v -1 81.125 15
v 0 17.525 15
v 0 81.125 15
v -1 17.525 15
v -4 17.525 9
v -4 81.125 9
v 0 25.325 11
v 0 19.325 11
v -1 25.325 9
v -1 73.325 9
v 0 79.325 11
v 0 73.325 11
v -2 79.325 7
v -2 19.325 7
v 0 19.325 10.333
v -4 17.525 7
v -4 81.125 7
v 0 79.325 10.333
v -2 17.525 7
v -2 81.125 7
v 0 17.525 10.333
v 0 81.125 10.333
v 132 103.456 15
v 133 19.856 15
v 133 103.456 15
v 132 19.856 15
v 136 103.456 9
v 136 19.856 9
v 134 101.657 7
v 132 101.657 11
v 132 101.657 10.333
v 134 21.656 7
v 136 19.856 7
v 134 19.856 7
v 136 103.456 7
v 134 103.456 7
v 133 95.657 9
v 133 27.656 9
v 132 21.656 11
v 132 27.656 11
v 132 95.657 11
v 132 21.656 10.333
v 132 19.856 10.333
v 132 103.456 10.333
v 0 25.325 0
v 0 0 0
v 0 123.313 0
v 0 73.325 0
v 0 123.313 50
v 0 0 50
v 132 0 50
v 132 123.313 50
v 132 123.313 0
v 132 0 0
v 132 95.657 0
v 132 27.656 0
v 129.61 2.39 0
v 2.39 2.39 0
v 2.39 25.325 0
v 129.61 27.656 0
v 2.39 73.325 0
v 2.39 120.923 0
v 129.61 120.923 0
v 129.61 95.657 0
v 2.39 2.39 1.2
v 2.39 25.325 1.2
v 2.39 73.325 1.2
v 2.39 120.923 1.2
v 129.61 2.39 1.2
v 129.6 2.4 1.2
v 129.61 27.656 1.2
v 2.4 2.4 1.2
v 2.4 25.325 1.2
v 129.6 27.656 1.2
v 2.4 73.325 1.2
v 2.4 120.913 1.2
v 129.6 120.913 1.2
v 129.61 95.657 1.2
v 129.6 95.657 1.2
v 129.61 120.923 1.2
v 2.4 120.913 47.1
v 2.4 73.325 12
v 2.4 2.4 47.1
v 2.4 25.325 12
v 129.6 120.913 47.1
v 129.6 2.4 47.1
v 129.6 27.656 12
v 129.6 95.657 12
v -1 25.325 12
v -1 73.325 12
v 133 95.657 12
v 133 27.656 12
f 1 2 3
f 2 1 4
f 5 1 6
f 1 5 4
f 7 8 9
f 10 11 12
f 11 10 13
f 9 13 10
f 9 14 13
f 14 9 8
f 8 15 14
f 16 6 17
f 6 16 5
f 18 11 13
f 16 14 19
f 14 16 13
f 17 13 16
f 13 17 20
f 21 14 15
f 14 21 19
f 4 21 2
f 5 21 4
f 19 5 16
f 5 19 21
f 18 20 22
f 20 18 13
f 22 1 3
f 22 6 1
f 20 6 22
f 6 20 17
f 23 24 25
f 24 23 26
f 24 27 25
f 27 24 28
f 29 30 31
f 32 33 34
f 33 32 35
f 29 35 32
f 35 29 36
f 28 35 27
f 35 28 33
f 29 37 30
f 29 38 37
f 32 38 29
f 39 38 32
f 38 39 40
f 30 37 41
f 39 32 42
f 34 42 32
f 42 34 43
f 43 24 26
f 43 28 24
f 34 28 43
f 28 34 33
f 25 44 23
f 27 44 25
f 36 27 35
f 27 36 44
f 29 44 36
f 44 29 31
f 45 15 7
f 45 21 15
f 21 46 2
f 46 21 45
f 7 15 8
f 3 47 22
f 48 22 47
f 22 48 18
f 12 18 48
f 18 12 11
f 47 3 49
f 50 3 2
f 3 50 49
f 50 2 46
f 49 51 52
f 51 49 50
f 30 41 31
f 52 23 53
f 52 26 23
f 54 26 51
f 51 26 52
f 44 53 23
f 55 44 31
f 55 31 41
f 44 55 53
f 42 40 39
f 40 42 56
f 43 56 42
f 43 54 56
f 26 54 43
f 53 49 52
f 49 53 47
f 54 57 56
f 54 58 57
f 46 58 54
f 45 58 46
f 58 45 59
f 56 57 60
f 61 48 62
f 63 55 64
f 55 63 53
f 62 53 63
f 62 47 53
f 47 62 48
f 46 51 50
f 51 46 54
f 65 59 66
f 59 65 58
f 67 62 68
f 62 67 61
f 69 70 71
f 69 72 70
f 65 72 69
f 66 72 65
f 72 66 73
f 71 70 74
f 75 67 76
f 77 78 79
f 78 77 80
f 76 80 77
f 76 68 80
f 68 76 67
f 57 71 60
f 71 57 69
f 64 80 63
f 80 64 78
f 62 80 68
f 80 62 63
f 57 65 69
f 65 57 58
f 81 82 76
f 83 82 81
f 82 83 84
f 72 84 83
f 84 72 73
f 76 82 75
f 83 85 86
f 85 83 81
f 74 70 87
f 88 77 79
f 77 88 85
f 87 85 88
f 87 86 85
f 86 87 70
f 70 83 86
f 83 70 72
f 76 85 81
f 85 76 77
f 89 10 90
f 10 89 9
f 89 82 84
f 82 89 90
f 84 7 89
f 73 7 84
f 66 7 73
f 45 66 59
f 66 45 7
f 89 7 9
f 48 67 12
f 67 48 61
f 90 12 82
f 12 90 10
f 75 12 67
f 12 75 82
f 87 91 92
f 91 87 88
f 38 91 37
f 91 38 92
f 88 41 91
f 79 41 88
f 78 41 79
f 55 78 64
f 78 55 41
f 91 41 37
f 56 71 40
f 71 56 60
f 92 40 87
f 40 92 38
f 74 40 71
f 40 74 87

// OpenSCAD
// OpenSCAD 2021.01 compatible
// Protective cover for esp32_breakout_carrier_with_lugs_v6_right_corner_lugs.scad
//
// Features:
// - open-bottom cover that fits over the ESP32 carrier rim
// - cover outer footprint matches the carrier's 3 mm cover-rest shelf
// - two centered cable openings/roofs on the same sides as the lugs
//   * left / -X lug side: 40 mm roof
//   * right / +X lug side: 80 mm roof
// - rain roofs with side cheeks, following the relay/pump cover style

$fn = 64;

// -----------------------------
// Matching ESP32 carrier v6 dimensions
// -----------------------------
carrier_body_width  = 126.0;
carrier_body_depth  = 117.313;  // 80 mm board + one 27.313 mm lug pitch + 2*5 mm margin
cover_rest_width    = 3.0;      // shelf available around the carrier rim

// -----------------------------
// Cover fit and height
// -----------------------------
fit_clearance   = 0.6;   // side clearance around the carrier rim
wall_thickness  = 2.4;   // with clearance, outside lands on the 3 mm shelf
inside_height   = 47.0;  // underside of top above carrier/rim
top_thickness   = 3.0;

// Derived cover dimensions
inner_width  = carrier_body_width  + 2 * fit_clearance;
inner_depth  = carrier_body_depth  + 2 * fit_clearance;
outer_width  = inner_width  + 2 * wall_thickness;
outer_depth  = inner_depth  + 2 * wall_thickness;
outer_height = inside_height + top_thickness;

// -----------------------------
// Cable openings and rain roofs on lug sides
// -----------------------------
left_roof_width  = 60.0;  // requested 4 cm roof, centered on -X lug side
right_roof_width = 80.0;  // requested 8 cm roof, centered on +X lug side

slot_top_z        = 12.0;  // openings are open from z=0 to this height
roof_clearance    = 1.0;
roof_projection   = 3.0;
roof_drop         = 6.0;
roof_thickness    = 2.0;
roof_side_margin  = 6.0;   // slot is smaller than roof, roof width stays exact
roof_cheek_thick  = 1.8;

left_slot_width  = left_roof_width  - 2 * roof_side_margin;
right_slot_width = right_roof_width - 2 * roof_side_margin;

left_center_y  = outer_depth / 2.5;
right_center_y = outer_depth / 2;

left_roof_y0  = left_center_y  - left_roof_width / 2;
left_roof_y1  = left_center_y  + left_roof_width / 2;
right_roof_y0 = right_center_y - right_roof_width / 2;
right_roof_y1 = right_center_y + right_roof_width / 2;

left_slot_y0  = left_center_y  - left_slot_width / 2;
right_slot_y0 = right_center_y - right_slot_width / 2;

roof_back_z  = slot_top_z + roof_clearance;
roof_front_z = roof_back_z - roof_drop;

// Optional small inner chamfer near bottom so the cover starts easily over the rim
bottom_chamfer_h  = 1.2;
bottom_chamfer_in = 0.7;

// -----------------------------
// Core shell
// -----------------------------
module outer_shell() {
    cube([outer_width, outer_depth, outer_height]);
}

module inner_cavity() {
    translate([wall_thickness, wall_thickness, 0])
        cube([inner_width, inner_depth, inside_height + 0.1]);
}

module bottom_softening_cut() {
    if (bottom_chamfer_h > 0 && bottom_chamfer_in > 0) {
        translate([wall_thickness - 0.01, wall_thickness - 0.01, 0])
            difference() {
                cube([inner_width + 0.02, inner_depth + 0.02, bottom_chamfer_h]);
                translate([bottom_chamfer_in, bottom_chamfer_in, -0.01])
                    cube([
                        inner_width - 2 * bottom_chamfer_in + 0.02,
                        inner_depth - 2 * bottom_chamfer_in + 0.02,
                        bottom_chamfer_h + 0.02
                    ]);
            }
    }
}

// -----------------------------
// Slot cutouts on the lug-side walls
// -----------------------------
module cable_slot_cutout_left(y0, width, top_z) {
    translate([-1, y0, 0])
        cube([wall_thickness + 2, width, top_z]);
}

module cable_slot_cutout_right(y0, width, top_z) {
    translate([outer_width - wall_thickness - 1, y0, 0])
        cube([wall_thickness + 2, width, top_z]);
}

// -----------------------------
// Left roof: x=0 side, sloping outward toward -X
// -----------------------------
module rain_roof_left(y0, width) {
    hull() {
        translate([-roof_thickness / 2, y0, roof_back_z])
            cube([roof_thickness, width, roof_thickness]);
        translate([-roof_projection - roof_thickness / 2, y0, roof_front_z])
            cube([roof_thickness, width, roof_thickness]);
    }
}

module rain_cheek_left_bottom(y0) {
    hull() {
        translate([-roof_thickness / 2, y0 - roof_cheek_thick, slot_top_z])
            cube([roof_thickness, roof_cheek_thick, roof_back_z + roof_thickness - slot_top_z]);
        translate([-roof_projection - roof_thickness / 2, y0 - roof_cheek_thick, roof_front_z])
            cube([roof_thickness, roof_cheek_thick, roof_thickness]);
    }
}

module rain_cheek_left_top(y1) {
    hull() {
        translate([-roof_thickness / 2, y1, slot_top_z])
            cube([roof_thickness, roof_cheek_thick, roof_back_z + roof_thickness - slot_top_z]);
        translate([-roof_projection - roof_thickness / 2, y1, roof_front_z])
            cube([roof_thickness, roof_cheek_thick, roof_thickness]);
    }
}

// -----------------------------
// Right roof: x=outer_width side, sloping outward toward +X
// -----------------------------
module rain_roof_right(y0, width) {
    hull() {
        translate([outer_width - roof_thickness / 2, y0, roof_back_z])
            cube([roof_thickness, width, roof_thickness]);
        translate([outer_width + roof_projection - roof_thickness / 2, y0, roof_front_z])
            cube([roof_thickness, width, roof_thickness]);
    }
}

module rain_cheek_right_bottom(y0) {
    hull() {
        translate([outer_width - roof_thickness / 2, y0 - roof_cheek_thick, slot_top_z])
            cube([roof_thickness, roof_cheek_thick, roof_back_z + roof_thickness - slot_top_z]);
        translate([outer_width + roof_projection - roof_thickness / 2, y0 - roof_cheek_thick, roof_front_z])
            cube([roof_thickness, roof_cheek_thick, roof_thickness]);
    }
}

module rain_cheek_right_top(y1) {
    hull() {
        translate([outer_width - roof_thickness / 2, y1, slot_top_z])
            cube([roof_thickness, roof_cheek_thick, roof_back_z + roof_thickness - slot_top_z]);
        translate([outer_width + roof_projection - roof_thickness / 2, y1, roof_front_z])
            cube([roof_thickness, roof_cheek_thick, roof_thickness]);
    }
}

module left_roof_and_cheeks() {
    rain_roof_left(left_roof_y0, left_roof_width);
    rain_cheek_left_bottom(left_roof_y0);
    rain_cheek_left_top(left_roof_y1);
}

module right_roof_and_cheeks() {
    rain_roof_right(right_roof_y0, right_roof_width);
    rain_cheek_right_bottom(right_roof_y0);
    rain_cheek_right_top(right_roof_y1);
}

module esp32_carrier_cover() {
    difference() {
        union() {
            outer_shell();
            left_roof_and_cheeks();
            right_roof_and_cheeks();
        }

        inner_cavity();
        bottom_softening_cut();

        cable_slot_cutout_left(left_slot_y0, left_slot_width, slot_top_z);
        cable_slot_cutout_right(right_slot_y0, right_slot_width, slot_top_z);
    }
}

esp32_carrier_cover();
